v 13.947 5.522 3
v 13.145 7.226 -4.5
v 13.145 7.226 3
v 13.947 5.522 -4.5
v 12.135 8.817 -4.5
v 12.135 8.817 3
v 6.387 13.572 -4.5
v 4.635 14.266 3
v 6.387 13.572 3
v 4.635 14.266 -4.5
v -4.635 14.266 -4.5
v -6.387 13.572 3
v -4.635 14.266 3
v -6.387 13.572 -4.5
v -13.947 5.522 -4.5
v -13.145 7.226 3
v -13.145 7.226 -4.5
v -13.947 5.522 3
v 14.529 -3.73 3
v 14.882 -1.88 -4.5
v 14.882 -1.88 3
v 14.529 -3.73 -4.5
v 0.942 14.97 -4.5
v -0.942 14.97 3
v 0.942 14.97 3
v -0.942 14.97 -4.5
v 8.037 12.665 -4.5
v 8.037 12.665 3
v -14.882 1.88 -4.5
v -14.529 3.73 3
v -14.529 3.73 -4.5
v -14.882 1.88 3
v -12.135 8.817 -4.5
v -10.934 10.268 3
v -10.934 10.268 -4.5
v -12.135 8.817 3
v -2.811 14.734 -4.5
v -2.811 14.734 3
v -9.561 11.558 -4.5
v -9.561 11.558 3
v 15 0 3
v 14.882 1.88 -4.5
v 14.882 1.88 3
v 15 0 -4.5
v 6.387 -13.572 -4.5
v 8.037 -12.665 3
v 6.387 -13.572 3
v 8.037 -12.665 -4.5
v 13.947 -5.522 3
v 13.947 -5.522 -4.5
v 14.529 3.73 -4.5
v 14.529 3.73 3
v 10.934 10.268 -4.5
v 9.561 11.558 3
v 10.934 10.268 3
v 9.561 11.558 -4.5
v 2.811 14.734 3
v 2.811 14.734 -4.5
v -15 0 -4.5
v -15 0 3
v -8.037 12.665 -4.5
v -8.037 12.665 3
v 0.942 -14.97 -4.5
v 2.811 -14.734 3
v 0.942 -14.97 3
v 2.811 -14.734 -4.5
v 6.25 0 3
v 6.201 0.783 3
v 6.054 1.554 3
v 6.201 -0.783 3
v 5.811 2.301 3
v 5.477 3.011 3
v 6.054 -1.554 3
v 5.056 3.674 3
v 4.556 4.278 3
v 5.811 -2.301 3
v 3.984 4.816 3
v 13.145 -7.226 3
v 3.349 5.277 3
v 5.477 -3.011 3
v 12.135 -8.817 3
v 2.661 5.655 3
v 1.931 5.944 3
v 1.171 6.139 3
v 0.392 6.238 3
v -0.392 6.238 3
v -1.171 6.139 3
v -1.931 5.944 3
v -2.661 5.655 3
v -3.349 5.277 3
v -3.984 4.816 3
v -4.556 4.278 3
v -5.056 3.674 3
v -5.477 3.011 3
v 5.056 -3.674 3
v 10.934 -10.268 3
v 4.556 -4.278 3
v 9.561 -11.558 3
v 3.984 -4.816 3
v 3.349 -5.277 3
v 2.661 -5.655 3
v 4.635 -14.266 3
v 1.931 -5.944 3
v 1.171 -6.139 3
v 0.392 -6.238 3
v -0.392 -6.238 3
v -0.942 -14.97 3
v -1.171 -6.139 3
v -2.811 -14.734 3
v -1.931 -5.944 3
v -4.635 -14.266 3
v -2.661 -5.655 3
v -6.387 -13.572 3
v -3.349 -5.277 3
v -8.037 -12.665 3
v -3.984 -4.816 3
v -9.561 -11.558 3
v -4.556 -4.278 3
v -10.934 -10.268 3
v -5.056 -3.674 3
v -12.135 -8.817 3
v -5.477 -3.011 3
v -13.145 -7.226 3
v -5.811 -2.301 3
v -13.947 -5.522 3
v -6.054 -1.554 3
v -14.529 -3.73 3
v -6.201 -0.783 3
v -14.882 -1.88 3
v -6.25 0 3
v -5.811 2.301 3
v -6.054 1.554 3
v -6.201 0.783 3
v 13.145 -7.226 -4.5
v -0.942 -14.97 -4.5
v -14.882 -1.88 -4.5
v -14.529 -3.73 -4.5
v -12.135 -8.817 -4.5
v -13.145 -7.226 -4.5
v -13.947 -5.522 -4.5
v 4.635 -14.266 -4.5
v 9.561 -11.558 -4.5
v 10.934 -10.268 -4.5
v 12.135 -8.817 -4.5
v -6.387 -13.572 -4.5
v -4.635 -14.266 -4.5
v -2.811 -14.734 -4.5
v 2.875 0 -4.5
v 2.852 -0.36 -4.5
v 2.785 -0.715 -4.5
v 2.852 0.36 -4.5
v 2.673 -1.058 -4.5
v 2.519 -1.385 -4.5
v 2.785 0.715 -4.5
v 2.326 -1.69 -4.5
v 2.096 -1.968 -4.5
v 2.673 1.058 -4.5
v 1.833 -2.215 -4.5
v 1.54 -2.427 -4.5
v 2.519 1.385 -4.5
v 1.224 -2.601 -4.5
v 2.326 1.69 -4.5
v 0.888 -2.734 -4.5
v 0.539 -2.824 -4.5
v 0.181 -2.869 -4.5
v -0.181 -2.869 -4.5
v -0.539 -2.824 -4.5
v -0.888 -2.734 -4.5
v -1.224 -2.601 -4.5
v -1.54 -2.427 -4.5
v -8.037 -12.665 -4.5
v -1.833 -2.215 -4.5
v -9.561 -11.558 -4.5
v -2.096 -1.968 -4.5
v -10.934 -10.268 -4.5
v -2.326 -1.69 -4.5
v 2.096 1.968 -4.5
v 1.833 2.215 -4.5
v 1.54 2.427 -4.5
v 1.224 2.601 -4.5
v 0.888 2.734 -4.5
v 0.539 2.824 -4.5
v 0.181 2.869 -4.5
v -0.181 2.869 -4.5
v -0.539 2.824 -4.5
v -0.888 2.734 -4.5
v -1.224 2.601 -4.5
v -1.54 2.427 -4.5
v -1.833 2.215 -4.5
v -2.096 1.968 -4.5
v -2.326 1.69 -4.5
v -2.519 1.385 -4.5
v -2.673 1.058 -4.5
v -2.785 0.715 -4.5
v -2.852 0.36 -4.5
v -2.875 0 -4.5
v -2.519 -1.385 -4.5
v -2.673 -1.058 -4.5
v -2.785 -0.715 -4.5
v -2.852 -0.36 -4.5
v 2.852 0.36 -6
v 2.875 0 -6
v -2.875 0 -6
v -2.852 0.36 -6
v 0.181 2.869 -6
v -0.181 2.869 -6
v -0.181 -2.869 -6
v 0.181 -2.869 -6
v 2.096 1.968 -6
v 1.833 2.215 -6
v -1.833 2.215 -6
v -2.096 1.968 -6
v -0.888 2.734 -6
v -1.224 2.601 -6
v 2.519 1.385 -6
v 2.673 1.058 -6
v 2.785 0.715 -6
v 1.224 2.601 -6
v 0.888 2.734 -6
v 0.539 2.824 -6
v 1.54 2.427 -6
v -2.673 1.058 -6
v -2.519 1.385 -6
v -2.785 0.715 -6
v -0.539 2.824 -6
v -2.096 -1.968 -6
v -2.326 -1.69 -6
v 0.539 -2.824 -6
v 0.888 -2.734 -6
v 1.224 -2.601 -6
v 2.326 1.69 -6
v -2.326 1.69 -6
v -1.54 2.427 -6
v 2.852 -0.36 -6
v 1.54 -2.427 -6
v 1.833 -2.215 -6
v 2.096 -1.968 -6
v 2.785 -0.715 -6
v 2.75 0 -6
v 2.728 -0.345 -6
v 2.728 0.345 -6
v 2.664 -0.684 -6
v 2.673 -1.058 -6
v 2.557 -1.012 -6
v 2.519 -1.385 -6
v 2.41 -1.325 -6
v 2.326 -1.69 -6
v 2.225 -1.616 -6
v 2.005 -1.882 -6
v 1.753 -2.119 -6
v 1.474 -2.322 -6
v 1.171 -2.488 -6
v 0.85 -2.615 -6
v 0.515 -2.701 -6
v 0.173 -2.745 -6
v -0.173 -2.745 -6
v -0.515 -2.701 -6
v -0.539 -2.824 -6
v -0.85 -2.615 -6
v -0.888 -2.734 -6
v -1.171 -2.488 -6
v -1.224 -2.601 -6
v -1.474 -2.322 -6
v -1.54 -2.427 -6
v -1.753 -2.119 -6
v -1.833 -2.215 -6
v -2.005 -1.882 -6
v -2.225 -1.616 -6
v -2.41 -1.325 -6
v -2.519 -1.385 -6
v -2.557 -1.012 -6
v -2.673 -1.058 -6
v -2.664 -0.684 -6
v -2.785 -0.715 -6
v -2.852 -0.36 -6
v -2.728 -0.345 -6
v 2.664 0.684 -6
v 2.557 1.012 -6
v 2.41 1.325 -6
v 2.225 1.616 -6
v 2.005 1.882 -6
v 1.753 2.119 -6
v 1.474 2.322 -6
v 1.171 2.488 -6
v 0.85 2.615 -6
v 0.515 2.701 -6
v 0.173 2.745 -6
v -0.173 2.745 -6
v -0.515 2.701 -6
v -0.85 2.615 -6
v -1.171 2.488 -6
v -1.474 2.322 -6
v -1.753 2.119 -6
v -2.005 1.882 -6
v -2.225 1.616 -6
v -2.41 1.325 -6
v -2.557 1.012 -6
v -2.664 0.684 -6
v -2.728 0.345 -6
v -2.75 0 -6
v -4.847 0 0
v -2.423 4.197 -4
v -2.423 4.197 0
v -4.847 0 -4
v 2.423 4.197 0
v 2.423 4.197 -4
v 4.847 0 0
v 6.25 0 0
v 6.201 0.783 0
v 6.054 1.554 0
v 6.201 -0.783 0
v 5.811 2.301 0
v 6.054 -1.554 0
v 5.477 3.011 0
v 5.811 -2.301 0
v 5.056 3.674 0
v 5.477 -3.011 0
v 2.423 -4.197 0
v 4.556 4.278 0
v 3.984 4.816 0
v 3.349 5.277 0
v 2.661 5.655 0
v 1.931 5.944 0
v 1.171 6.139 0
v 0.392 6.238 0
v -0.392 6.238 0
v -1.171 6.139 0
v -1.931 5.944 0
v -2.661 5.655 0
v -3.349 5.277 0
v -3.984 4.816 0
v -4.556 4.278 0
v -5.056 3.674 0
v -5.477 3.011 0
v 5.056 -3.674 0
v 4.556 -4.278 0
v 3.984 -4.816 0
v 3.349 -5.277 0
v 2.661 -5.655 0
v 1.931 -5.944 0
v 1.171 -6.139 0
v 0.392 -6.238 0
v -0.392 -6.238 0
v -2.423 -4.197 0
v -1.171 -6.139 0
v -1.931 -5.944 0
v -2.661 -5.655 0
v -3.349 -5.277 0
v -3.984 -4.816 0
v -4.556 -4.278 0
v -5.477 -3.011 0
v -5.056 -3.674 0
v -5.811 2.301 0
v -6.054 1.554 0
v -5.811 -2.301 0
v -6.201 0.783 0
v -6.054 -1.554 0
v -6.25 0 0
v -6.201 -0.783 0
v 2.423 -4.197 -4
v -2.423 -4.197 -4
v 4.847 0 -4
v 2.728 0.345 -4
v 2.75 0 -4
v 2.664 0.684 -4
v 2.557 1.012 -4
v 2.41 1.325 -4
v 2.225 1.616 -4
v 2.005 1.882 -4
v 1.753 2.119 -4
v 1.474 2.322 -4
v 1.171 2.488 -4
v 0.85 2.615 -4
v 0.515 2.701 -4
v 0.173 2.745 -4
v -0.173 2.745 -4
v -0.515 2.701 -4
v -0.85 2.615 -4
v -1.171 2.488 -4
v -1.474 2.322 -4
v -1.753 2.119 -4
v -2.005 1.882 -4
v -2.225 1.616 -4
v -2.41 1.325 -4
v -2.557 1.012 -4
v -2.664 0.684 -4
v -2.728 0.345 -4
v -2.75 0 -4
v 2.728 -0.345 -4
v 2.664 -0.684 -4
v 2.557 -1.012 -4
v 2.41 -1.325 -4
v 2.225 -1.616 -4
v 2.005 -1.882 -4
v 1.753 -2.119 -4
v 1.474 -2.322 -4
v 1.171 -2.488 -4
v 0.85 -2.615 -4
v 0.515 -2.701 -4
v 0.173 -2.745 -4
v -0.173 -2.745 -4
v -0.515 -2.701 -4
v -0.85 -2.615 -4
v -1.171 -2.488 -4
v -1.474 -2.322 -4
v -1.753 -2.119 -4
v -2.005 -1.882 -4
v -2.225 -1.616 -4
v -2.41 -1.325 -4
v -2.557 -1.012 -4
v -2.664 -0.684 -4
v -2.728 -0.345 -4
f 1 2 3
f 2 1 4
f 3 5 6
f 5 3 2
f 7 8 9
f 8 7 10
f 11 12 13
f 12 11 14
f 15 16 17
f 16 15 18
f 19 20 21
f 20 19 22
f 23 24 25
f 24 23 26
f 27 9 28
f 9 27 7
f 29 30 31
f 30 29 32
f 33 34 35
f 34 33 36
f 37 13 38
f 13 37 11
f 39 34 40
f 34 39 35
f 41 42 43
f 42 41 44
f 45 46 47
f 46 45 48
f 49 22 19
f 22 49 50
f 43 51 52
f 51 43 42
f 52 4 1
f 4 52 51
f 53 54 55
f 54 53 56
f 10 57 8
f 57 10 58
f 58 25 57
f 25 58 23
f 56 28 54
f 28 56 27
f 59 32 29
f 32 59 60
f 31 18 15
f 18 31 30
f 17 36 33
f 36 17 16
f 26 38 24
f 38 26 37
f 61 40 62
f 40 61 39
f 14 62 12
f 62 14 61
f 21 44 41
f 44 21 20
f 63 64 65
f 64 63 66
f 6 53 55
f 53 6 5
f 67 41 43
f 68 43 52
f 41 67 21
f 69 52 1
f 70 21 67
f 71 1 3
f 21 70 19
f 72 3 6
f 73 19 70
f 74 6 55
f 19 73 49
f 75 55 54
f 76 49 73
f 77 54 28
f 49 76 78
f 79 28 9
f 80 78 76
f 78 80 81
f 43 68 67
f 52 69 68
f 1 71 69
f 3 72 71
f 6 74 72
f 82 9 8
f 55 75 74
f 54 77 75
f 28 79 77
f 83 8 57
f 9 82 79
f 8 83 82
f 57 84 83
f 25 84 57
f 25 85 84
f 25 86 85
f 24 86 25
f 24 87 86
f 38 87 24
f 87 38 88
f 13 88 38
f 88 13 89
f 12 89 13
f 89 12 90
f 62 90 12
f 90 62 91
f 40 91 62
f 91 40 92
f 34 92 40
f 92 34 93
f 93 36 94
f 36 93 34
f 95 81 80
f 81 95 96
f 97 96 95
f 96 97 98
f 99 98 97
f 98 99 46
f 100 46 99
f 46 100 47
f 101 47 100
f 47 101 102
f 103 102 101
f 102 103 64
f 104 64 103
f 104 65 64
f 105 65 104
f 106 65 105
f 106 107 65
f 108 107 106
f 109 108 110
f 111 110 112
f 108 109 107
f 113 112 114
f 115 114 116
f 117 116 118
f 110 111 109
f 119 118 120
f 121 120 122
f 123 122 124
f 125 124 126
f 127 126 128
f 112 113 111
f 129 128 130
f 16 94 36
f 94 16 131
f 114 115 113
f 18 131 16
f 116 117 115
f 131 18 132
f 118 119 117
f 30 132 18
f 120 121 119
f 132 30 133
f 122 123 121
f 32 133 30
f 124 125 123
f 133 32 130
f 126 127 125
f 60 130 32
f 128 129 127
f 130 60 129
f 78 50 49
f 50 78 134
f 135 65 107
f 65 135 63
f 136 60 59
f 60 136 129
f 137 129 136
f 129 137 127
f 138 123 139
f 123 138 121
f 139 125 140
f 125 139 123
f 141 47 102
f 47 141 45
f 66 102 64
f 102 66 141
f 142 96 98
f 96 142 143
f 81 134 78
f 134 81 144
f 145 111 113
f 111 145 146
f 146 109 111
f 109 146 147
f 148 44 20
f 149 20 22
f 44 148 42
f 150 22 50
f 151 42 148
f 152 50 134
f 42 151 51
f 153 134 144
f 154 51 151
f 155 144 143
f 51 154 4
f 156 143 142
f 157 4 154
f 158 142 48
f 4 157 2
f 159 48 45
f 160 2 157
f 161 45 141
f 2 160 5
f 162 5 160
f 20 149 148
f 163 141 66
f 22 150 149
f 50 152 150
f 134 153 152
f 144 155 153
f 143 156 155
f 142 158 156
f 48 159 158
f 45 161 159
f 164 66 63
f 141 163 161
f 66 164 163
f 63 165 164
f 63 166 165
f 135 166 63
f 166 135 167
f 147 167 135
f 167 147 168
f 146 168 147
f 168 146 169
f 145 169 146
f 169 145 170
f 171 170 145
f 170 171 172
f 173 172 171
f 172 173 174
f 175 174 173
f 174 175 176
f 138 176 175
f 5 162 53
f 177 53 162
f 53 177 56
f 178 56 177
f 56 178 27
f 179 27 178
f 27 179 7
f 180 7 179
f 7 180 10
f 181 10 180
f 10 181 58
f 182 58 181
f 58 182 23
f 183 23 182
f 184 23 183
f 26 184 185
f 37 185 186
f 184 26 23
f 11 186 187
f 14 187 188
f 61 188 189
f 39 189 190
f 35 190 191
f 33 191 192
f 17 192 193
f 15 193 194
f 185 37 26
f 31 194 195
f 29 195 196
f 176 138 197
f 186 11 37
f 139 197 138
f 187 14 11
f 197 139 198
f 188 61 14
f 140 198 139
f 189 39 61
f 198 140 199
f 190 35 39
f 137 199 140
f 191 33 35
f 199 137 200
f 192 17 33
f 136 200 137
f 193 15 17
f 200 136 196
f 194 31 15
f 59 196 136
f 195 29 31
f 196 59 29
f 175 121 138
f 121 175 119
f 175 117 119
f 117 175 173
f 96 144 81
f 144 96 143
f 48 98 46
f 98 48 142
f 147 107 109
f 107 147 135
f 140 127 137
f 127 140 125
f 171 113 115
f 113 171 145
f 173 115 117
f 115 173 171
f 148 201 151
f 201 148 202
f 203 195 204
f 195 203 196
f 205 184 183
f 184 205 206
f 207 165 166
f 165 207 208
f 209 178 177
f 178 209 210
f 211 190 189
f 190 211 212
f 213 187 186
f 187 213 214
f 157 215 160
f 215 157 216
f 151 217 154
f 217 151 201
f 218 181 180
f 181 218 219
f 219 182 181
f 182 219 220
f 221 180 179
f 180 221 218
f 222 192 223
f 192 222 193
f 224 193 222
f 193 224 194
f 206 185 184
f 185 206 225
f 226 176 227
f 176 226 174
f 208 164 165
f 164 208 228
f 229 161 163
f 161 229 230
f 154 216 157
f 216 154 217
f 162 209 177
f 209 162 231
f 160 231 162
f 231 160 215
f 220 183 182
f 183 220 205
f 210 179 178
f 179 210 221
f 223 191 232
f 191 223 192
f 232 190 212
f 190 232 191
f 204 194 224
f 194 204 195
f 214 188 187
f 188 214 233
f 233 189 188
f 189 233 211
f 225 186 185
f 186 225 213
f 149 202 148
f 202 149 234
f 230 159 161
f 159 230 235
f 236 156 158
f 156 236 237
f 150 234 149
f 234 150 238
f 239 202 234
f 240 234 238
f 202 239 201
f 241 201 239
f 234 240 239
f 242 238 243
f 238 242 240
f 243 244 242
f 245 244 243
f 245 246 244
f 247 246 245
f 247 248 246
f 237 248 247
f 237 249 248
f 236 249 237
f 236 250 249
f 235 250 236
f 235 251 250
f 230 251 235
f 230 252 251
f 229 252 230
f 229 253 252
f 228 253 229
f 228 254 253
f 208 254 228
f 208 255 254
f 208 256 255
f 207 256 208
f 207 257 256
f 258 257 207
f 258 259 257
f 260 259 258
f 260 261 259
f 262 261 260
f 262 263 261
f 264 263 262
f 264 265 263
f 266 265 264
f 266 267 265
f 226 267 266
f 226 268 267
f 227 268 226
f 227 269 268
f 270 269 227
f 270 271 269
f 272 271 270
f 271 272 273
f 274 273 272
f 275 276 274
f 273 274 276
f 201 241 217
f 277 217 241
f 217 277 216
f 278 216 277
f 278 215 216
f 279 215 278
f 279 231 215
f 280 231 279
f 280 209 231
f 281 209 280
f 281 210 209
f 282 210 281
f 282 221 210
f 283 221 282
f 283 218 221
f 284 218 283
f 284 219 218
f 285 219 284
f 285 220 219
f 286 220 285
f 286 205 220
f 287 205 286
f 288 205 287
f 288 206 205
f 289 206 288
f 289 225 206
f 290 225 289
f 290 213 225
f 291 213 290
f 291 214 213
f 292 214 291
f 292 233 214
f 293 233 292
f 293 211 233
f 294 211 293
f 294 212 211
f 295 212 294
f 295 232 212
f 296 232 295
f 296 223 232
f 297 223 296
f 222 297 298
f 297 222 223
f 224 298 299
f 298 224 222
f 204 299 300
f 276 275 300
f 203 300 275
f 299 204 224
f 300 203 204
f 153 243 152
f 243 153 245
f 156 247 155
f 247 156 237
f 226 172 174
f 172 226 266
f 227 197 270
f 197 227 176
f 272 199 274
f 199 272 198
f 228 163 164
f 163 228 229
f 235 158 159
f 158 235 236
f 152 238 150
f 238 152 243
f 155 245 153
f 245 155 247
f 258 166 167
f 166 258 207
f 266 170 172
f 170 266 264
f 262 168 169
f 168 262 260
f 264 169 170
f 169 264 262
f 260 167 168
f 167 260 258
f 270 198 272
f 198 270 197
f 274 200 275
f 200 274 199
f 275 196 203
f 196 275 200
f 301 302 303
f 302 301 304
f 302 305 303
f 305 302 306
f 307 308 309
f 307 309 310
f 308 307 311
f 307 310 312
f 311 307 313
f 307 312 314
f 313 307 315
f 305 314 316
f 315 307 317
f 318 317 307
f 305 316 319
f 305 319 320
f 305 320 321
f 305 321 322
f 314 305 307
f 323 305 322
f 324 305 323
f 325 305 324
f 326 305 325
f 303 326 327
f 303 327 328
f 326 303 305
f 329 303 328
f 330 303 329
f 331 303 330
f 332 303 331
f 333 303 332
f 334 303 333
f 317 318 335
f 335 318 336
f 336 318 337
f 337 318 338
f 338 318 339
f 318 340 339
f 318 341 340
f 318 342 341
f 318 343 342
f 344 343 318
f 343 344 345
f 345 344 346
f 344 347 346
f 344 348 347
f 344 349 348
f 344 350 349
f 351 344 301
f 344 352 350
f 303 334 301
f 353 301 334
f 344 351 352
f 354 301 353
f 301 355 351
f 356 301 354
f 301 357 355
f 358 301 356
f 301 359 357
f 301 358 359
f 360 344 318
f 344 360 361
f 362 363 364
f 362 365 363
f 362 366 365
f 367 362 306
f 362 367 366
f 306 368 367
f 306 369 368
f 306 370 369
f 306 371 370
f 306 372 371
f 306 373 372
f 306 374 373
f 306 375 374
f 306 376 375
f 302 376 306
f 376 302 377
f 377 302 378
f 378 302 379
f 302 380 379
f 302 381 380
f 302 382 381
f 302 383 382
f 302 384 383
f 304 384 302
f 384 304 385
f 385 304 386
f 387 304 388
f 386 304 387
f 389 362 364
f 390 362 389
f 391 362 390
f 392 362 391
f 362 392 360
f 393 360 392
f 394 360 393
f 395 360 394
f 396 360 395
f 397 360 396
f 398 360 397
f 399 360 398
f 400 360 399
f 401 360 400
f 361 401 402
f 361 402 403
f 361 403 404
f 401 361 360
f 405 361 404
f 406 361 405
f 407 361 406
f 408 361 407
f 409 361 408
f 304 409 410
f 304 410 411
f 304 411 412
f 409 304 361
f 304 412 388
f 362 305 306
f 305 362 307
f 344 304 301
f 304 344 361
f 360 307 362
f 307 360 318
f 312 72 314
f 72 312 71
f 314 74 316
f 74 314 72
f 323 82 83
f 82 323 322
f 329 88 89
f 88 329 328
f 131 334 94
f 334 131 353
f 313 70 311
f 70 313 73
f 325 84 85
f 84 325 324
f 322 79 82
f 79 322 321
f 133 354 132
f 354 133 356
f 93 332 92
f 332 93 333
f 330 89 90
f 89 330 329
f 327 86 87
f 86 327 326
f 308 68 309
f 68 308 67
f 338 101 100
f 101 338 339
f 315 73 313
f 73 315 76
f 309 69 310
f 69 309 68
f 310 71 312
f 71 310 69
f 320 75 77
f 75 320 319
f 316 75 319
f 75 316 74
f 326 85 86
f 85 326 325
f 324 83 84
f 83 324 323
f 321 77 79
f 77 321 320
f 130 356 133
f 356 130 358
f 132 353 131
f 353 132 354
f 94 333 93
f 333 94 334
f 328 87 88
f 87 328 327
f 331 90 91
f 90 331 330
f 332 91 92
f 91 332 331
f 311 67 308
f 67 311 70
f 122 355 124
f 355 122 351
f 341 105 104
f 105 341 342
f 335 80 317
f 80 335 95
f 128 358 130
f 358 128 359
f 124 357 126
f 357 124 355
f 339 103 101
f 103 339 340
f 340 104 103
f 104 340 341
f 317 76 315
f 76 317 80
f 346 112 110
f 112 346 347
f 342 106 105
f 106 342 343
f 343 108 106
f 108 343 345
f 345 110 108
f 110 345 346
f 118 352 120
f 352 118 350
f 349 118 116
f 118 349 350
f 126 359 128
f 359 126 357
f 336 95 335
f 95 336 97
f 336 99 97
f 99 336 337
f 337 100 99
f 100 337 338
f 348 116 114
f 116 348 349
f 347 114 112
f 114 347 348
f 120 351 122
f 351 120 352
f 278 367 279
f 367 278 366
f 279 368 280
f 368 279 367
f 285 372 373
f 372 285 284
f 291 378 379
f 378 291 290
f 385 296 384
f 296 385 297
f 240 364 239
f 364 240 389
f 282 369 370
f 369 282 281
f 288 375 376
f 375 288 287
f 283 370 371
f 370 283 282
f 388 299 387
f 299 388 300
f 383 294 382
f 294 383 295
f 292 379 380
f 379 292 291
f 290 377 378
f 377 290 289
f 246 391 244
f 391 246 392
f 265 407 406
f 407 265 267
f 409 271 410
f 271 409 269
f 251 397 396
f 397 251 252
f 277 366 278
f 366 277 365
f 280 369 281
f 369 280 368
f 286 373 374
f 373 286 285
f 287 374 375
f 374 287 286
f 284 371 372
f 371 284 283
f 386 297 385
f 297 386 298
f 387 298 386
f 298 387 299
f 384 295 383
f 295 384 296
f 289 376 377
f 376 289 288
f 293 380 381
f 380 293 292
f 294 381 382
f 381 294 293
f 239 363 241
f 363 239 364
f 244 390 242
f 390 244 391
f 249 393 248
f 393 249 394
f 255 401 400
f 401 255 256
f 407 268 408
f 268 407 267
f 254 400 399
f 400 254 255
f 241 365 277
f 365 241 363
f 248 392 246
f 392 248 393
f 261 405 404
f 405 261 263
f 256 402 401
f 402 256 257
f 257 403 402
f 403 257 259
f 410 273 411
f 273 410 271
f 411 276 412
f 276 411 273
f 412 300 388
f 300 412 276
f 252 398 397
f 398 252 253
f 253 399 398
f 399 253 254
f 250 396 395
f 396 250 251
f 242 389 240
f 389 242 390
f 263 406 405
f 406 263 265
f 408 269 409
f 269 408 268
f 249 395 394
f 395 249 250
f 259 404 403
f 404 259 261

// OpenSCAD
$fn = 50;


difference() {
	union() {
		translate(v = [0, 0, -4.5000000000]) {
			cylinder(h = 7.5000000000, r = 15.0000000000);
		}
		#translate(v = [0, 0, -6.0000000000]) {
			cylinder(h = 6, r = 2.8750000000);
		}
	}
	union() {
		translate(v = [0, 0, 0]) {
			rotate(a = [0, 0, 0]) {
				difference() {
					union() {
						translate(v = [0, 0, -4]) {
							linear_extrude(height = 4) {
								polygon(points = [[4.8468000000, 0.0000000000], [2.4234000000, 4.1974519271], [-2.4234000000, 4.1974519271], [-4.8468000000, 0.0000000000], [-2.4234000000, -4.1974519271], [2.4234000000, -4.1974519271]]);
							}
						}
					}
					union();
				}
			}
		}
		#cylinder(h = 3, r = 6.2500000000);
		#translate(v = [0, 0, -100.0000000000]) {
			cylinder(h = 200, r = 2.7500000000);
		}
	}
}
